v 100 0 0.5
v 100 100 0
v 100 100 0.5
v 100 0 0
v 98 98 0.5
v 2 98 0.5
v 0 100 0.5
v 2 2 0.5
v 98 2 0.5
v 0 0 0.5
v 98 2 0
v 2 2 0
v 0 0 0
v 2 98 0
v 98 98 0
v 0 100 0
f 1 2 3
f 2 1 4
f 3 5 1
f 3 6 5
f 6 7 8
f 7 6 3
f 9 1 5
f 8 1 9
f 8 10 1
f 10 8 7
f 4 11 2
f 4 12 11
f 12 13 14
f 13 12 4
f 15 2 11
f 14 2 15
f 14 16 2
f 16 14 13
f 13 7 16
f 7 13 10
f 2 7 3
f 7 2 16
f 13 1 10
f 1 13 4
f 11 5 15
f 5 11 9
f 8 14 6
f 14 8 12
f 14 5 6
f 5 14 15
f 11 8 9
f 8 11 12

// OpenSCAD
dim = 100;
thickness = 0.5;
ridge = 2;

difference()
{
    cube([dim, dim, thickness]);
    translate([ridge, ridge, 0])
    {
        cube([dim - ridge - ridge, dim - ridge - ridge, thickness]);
    }
}
